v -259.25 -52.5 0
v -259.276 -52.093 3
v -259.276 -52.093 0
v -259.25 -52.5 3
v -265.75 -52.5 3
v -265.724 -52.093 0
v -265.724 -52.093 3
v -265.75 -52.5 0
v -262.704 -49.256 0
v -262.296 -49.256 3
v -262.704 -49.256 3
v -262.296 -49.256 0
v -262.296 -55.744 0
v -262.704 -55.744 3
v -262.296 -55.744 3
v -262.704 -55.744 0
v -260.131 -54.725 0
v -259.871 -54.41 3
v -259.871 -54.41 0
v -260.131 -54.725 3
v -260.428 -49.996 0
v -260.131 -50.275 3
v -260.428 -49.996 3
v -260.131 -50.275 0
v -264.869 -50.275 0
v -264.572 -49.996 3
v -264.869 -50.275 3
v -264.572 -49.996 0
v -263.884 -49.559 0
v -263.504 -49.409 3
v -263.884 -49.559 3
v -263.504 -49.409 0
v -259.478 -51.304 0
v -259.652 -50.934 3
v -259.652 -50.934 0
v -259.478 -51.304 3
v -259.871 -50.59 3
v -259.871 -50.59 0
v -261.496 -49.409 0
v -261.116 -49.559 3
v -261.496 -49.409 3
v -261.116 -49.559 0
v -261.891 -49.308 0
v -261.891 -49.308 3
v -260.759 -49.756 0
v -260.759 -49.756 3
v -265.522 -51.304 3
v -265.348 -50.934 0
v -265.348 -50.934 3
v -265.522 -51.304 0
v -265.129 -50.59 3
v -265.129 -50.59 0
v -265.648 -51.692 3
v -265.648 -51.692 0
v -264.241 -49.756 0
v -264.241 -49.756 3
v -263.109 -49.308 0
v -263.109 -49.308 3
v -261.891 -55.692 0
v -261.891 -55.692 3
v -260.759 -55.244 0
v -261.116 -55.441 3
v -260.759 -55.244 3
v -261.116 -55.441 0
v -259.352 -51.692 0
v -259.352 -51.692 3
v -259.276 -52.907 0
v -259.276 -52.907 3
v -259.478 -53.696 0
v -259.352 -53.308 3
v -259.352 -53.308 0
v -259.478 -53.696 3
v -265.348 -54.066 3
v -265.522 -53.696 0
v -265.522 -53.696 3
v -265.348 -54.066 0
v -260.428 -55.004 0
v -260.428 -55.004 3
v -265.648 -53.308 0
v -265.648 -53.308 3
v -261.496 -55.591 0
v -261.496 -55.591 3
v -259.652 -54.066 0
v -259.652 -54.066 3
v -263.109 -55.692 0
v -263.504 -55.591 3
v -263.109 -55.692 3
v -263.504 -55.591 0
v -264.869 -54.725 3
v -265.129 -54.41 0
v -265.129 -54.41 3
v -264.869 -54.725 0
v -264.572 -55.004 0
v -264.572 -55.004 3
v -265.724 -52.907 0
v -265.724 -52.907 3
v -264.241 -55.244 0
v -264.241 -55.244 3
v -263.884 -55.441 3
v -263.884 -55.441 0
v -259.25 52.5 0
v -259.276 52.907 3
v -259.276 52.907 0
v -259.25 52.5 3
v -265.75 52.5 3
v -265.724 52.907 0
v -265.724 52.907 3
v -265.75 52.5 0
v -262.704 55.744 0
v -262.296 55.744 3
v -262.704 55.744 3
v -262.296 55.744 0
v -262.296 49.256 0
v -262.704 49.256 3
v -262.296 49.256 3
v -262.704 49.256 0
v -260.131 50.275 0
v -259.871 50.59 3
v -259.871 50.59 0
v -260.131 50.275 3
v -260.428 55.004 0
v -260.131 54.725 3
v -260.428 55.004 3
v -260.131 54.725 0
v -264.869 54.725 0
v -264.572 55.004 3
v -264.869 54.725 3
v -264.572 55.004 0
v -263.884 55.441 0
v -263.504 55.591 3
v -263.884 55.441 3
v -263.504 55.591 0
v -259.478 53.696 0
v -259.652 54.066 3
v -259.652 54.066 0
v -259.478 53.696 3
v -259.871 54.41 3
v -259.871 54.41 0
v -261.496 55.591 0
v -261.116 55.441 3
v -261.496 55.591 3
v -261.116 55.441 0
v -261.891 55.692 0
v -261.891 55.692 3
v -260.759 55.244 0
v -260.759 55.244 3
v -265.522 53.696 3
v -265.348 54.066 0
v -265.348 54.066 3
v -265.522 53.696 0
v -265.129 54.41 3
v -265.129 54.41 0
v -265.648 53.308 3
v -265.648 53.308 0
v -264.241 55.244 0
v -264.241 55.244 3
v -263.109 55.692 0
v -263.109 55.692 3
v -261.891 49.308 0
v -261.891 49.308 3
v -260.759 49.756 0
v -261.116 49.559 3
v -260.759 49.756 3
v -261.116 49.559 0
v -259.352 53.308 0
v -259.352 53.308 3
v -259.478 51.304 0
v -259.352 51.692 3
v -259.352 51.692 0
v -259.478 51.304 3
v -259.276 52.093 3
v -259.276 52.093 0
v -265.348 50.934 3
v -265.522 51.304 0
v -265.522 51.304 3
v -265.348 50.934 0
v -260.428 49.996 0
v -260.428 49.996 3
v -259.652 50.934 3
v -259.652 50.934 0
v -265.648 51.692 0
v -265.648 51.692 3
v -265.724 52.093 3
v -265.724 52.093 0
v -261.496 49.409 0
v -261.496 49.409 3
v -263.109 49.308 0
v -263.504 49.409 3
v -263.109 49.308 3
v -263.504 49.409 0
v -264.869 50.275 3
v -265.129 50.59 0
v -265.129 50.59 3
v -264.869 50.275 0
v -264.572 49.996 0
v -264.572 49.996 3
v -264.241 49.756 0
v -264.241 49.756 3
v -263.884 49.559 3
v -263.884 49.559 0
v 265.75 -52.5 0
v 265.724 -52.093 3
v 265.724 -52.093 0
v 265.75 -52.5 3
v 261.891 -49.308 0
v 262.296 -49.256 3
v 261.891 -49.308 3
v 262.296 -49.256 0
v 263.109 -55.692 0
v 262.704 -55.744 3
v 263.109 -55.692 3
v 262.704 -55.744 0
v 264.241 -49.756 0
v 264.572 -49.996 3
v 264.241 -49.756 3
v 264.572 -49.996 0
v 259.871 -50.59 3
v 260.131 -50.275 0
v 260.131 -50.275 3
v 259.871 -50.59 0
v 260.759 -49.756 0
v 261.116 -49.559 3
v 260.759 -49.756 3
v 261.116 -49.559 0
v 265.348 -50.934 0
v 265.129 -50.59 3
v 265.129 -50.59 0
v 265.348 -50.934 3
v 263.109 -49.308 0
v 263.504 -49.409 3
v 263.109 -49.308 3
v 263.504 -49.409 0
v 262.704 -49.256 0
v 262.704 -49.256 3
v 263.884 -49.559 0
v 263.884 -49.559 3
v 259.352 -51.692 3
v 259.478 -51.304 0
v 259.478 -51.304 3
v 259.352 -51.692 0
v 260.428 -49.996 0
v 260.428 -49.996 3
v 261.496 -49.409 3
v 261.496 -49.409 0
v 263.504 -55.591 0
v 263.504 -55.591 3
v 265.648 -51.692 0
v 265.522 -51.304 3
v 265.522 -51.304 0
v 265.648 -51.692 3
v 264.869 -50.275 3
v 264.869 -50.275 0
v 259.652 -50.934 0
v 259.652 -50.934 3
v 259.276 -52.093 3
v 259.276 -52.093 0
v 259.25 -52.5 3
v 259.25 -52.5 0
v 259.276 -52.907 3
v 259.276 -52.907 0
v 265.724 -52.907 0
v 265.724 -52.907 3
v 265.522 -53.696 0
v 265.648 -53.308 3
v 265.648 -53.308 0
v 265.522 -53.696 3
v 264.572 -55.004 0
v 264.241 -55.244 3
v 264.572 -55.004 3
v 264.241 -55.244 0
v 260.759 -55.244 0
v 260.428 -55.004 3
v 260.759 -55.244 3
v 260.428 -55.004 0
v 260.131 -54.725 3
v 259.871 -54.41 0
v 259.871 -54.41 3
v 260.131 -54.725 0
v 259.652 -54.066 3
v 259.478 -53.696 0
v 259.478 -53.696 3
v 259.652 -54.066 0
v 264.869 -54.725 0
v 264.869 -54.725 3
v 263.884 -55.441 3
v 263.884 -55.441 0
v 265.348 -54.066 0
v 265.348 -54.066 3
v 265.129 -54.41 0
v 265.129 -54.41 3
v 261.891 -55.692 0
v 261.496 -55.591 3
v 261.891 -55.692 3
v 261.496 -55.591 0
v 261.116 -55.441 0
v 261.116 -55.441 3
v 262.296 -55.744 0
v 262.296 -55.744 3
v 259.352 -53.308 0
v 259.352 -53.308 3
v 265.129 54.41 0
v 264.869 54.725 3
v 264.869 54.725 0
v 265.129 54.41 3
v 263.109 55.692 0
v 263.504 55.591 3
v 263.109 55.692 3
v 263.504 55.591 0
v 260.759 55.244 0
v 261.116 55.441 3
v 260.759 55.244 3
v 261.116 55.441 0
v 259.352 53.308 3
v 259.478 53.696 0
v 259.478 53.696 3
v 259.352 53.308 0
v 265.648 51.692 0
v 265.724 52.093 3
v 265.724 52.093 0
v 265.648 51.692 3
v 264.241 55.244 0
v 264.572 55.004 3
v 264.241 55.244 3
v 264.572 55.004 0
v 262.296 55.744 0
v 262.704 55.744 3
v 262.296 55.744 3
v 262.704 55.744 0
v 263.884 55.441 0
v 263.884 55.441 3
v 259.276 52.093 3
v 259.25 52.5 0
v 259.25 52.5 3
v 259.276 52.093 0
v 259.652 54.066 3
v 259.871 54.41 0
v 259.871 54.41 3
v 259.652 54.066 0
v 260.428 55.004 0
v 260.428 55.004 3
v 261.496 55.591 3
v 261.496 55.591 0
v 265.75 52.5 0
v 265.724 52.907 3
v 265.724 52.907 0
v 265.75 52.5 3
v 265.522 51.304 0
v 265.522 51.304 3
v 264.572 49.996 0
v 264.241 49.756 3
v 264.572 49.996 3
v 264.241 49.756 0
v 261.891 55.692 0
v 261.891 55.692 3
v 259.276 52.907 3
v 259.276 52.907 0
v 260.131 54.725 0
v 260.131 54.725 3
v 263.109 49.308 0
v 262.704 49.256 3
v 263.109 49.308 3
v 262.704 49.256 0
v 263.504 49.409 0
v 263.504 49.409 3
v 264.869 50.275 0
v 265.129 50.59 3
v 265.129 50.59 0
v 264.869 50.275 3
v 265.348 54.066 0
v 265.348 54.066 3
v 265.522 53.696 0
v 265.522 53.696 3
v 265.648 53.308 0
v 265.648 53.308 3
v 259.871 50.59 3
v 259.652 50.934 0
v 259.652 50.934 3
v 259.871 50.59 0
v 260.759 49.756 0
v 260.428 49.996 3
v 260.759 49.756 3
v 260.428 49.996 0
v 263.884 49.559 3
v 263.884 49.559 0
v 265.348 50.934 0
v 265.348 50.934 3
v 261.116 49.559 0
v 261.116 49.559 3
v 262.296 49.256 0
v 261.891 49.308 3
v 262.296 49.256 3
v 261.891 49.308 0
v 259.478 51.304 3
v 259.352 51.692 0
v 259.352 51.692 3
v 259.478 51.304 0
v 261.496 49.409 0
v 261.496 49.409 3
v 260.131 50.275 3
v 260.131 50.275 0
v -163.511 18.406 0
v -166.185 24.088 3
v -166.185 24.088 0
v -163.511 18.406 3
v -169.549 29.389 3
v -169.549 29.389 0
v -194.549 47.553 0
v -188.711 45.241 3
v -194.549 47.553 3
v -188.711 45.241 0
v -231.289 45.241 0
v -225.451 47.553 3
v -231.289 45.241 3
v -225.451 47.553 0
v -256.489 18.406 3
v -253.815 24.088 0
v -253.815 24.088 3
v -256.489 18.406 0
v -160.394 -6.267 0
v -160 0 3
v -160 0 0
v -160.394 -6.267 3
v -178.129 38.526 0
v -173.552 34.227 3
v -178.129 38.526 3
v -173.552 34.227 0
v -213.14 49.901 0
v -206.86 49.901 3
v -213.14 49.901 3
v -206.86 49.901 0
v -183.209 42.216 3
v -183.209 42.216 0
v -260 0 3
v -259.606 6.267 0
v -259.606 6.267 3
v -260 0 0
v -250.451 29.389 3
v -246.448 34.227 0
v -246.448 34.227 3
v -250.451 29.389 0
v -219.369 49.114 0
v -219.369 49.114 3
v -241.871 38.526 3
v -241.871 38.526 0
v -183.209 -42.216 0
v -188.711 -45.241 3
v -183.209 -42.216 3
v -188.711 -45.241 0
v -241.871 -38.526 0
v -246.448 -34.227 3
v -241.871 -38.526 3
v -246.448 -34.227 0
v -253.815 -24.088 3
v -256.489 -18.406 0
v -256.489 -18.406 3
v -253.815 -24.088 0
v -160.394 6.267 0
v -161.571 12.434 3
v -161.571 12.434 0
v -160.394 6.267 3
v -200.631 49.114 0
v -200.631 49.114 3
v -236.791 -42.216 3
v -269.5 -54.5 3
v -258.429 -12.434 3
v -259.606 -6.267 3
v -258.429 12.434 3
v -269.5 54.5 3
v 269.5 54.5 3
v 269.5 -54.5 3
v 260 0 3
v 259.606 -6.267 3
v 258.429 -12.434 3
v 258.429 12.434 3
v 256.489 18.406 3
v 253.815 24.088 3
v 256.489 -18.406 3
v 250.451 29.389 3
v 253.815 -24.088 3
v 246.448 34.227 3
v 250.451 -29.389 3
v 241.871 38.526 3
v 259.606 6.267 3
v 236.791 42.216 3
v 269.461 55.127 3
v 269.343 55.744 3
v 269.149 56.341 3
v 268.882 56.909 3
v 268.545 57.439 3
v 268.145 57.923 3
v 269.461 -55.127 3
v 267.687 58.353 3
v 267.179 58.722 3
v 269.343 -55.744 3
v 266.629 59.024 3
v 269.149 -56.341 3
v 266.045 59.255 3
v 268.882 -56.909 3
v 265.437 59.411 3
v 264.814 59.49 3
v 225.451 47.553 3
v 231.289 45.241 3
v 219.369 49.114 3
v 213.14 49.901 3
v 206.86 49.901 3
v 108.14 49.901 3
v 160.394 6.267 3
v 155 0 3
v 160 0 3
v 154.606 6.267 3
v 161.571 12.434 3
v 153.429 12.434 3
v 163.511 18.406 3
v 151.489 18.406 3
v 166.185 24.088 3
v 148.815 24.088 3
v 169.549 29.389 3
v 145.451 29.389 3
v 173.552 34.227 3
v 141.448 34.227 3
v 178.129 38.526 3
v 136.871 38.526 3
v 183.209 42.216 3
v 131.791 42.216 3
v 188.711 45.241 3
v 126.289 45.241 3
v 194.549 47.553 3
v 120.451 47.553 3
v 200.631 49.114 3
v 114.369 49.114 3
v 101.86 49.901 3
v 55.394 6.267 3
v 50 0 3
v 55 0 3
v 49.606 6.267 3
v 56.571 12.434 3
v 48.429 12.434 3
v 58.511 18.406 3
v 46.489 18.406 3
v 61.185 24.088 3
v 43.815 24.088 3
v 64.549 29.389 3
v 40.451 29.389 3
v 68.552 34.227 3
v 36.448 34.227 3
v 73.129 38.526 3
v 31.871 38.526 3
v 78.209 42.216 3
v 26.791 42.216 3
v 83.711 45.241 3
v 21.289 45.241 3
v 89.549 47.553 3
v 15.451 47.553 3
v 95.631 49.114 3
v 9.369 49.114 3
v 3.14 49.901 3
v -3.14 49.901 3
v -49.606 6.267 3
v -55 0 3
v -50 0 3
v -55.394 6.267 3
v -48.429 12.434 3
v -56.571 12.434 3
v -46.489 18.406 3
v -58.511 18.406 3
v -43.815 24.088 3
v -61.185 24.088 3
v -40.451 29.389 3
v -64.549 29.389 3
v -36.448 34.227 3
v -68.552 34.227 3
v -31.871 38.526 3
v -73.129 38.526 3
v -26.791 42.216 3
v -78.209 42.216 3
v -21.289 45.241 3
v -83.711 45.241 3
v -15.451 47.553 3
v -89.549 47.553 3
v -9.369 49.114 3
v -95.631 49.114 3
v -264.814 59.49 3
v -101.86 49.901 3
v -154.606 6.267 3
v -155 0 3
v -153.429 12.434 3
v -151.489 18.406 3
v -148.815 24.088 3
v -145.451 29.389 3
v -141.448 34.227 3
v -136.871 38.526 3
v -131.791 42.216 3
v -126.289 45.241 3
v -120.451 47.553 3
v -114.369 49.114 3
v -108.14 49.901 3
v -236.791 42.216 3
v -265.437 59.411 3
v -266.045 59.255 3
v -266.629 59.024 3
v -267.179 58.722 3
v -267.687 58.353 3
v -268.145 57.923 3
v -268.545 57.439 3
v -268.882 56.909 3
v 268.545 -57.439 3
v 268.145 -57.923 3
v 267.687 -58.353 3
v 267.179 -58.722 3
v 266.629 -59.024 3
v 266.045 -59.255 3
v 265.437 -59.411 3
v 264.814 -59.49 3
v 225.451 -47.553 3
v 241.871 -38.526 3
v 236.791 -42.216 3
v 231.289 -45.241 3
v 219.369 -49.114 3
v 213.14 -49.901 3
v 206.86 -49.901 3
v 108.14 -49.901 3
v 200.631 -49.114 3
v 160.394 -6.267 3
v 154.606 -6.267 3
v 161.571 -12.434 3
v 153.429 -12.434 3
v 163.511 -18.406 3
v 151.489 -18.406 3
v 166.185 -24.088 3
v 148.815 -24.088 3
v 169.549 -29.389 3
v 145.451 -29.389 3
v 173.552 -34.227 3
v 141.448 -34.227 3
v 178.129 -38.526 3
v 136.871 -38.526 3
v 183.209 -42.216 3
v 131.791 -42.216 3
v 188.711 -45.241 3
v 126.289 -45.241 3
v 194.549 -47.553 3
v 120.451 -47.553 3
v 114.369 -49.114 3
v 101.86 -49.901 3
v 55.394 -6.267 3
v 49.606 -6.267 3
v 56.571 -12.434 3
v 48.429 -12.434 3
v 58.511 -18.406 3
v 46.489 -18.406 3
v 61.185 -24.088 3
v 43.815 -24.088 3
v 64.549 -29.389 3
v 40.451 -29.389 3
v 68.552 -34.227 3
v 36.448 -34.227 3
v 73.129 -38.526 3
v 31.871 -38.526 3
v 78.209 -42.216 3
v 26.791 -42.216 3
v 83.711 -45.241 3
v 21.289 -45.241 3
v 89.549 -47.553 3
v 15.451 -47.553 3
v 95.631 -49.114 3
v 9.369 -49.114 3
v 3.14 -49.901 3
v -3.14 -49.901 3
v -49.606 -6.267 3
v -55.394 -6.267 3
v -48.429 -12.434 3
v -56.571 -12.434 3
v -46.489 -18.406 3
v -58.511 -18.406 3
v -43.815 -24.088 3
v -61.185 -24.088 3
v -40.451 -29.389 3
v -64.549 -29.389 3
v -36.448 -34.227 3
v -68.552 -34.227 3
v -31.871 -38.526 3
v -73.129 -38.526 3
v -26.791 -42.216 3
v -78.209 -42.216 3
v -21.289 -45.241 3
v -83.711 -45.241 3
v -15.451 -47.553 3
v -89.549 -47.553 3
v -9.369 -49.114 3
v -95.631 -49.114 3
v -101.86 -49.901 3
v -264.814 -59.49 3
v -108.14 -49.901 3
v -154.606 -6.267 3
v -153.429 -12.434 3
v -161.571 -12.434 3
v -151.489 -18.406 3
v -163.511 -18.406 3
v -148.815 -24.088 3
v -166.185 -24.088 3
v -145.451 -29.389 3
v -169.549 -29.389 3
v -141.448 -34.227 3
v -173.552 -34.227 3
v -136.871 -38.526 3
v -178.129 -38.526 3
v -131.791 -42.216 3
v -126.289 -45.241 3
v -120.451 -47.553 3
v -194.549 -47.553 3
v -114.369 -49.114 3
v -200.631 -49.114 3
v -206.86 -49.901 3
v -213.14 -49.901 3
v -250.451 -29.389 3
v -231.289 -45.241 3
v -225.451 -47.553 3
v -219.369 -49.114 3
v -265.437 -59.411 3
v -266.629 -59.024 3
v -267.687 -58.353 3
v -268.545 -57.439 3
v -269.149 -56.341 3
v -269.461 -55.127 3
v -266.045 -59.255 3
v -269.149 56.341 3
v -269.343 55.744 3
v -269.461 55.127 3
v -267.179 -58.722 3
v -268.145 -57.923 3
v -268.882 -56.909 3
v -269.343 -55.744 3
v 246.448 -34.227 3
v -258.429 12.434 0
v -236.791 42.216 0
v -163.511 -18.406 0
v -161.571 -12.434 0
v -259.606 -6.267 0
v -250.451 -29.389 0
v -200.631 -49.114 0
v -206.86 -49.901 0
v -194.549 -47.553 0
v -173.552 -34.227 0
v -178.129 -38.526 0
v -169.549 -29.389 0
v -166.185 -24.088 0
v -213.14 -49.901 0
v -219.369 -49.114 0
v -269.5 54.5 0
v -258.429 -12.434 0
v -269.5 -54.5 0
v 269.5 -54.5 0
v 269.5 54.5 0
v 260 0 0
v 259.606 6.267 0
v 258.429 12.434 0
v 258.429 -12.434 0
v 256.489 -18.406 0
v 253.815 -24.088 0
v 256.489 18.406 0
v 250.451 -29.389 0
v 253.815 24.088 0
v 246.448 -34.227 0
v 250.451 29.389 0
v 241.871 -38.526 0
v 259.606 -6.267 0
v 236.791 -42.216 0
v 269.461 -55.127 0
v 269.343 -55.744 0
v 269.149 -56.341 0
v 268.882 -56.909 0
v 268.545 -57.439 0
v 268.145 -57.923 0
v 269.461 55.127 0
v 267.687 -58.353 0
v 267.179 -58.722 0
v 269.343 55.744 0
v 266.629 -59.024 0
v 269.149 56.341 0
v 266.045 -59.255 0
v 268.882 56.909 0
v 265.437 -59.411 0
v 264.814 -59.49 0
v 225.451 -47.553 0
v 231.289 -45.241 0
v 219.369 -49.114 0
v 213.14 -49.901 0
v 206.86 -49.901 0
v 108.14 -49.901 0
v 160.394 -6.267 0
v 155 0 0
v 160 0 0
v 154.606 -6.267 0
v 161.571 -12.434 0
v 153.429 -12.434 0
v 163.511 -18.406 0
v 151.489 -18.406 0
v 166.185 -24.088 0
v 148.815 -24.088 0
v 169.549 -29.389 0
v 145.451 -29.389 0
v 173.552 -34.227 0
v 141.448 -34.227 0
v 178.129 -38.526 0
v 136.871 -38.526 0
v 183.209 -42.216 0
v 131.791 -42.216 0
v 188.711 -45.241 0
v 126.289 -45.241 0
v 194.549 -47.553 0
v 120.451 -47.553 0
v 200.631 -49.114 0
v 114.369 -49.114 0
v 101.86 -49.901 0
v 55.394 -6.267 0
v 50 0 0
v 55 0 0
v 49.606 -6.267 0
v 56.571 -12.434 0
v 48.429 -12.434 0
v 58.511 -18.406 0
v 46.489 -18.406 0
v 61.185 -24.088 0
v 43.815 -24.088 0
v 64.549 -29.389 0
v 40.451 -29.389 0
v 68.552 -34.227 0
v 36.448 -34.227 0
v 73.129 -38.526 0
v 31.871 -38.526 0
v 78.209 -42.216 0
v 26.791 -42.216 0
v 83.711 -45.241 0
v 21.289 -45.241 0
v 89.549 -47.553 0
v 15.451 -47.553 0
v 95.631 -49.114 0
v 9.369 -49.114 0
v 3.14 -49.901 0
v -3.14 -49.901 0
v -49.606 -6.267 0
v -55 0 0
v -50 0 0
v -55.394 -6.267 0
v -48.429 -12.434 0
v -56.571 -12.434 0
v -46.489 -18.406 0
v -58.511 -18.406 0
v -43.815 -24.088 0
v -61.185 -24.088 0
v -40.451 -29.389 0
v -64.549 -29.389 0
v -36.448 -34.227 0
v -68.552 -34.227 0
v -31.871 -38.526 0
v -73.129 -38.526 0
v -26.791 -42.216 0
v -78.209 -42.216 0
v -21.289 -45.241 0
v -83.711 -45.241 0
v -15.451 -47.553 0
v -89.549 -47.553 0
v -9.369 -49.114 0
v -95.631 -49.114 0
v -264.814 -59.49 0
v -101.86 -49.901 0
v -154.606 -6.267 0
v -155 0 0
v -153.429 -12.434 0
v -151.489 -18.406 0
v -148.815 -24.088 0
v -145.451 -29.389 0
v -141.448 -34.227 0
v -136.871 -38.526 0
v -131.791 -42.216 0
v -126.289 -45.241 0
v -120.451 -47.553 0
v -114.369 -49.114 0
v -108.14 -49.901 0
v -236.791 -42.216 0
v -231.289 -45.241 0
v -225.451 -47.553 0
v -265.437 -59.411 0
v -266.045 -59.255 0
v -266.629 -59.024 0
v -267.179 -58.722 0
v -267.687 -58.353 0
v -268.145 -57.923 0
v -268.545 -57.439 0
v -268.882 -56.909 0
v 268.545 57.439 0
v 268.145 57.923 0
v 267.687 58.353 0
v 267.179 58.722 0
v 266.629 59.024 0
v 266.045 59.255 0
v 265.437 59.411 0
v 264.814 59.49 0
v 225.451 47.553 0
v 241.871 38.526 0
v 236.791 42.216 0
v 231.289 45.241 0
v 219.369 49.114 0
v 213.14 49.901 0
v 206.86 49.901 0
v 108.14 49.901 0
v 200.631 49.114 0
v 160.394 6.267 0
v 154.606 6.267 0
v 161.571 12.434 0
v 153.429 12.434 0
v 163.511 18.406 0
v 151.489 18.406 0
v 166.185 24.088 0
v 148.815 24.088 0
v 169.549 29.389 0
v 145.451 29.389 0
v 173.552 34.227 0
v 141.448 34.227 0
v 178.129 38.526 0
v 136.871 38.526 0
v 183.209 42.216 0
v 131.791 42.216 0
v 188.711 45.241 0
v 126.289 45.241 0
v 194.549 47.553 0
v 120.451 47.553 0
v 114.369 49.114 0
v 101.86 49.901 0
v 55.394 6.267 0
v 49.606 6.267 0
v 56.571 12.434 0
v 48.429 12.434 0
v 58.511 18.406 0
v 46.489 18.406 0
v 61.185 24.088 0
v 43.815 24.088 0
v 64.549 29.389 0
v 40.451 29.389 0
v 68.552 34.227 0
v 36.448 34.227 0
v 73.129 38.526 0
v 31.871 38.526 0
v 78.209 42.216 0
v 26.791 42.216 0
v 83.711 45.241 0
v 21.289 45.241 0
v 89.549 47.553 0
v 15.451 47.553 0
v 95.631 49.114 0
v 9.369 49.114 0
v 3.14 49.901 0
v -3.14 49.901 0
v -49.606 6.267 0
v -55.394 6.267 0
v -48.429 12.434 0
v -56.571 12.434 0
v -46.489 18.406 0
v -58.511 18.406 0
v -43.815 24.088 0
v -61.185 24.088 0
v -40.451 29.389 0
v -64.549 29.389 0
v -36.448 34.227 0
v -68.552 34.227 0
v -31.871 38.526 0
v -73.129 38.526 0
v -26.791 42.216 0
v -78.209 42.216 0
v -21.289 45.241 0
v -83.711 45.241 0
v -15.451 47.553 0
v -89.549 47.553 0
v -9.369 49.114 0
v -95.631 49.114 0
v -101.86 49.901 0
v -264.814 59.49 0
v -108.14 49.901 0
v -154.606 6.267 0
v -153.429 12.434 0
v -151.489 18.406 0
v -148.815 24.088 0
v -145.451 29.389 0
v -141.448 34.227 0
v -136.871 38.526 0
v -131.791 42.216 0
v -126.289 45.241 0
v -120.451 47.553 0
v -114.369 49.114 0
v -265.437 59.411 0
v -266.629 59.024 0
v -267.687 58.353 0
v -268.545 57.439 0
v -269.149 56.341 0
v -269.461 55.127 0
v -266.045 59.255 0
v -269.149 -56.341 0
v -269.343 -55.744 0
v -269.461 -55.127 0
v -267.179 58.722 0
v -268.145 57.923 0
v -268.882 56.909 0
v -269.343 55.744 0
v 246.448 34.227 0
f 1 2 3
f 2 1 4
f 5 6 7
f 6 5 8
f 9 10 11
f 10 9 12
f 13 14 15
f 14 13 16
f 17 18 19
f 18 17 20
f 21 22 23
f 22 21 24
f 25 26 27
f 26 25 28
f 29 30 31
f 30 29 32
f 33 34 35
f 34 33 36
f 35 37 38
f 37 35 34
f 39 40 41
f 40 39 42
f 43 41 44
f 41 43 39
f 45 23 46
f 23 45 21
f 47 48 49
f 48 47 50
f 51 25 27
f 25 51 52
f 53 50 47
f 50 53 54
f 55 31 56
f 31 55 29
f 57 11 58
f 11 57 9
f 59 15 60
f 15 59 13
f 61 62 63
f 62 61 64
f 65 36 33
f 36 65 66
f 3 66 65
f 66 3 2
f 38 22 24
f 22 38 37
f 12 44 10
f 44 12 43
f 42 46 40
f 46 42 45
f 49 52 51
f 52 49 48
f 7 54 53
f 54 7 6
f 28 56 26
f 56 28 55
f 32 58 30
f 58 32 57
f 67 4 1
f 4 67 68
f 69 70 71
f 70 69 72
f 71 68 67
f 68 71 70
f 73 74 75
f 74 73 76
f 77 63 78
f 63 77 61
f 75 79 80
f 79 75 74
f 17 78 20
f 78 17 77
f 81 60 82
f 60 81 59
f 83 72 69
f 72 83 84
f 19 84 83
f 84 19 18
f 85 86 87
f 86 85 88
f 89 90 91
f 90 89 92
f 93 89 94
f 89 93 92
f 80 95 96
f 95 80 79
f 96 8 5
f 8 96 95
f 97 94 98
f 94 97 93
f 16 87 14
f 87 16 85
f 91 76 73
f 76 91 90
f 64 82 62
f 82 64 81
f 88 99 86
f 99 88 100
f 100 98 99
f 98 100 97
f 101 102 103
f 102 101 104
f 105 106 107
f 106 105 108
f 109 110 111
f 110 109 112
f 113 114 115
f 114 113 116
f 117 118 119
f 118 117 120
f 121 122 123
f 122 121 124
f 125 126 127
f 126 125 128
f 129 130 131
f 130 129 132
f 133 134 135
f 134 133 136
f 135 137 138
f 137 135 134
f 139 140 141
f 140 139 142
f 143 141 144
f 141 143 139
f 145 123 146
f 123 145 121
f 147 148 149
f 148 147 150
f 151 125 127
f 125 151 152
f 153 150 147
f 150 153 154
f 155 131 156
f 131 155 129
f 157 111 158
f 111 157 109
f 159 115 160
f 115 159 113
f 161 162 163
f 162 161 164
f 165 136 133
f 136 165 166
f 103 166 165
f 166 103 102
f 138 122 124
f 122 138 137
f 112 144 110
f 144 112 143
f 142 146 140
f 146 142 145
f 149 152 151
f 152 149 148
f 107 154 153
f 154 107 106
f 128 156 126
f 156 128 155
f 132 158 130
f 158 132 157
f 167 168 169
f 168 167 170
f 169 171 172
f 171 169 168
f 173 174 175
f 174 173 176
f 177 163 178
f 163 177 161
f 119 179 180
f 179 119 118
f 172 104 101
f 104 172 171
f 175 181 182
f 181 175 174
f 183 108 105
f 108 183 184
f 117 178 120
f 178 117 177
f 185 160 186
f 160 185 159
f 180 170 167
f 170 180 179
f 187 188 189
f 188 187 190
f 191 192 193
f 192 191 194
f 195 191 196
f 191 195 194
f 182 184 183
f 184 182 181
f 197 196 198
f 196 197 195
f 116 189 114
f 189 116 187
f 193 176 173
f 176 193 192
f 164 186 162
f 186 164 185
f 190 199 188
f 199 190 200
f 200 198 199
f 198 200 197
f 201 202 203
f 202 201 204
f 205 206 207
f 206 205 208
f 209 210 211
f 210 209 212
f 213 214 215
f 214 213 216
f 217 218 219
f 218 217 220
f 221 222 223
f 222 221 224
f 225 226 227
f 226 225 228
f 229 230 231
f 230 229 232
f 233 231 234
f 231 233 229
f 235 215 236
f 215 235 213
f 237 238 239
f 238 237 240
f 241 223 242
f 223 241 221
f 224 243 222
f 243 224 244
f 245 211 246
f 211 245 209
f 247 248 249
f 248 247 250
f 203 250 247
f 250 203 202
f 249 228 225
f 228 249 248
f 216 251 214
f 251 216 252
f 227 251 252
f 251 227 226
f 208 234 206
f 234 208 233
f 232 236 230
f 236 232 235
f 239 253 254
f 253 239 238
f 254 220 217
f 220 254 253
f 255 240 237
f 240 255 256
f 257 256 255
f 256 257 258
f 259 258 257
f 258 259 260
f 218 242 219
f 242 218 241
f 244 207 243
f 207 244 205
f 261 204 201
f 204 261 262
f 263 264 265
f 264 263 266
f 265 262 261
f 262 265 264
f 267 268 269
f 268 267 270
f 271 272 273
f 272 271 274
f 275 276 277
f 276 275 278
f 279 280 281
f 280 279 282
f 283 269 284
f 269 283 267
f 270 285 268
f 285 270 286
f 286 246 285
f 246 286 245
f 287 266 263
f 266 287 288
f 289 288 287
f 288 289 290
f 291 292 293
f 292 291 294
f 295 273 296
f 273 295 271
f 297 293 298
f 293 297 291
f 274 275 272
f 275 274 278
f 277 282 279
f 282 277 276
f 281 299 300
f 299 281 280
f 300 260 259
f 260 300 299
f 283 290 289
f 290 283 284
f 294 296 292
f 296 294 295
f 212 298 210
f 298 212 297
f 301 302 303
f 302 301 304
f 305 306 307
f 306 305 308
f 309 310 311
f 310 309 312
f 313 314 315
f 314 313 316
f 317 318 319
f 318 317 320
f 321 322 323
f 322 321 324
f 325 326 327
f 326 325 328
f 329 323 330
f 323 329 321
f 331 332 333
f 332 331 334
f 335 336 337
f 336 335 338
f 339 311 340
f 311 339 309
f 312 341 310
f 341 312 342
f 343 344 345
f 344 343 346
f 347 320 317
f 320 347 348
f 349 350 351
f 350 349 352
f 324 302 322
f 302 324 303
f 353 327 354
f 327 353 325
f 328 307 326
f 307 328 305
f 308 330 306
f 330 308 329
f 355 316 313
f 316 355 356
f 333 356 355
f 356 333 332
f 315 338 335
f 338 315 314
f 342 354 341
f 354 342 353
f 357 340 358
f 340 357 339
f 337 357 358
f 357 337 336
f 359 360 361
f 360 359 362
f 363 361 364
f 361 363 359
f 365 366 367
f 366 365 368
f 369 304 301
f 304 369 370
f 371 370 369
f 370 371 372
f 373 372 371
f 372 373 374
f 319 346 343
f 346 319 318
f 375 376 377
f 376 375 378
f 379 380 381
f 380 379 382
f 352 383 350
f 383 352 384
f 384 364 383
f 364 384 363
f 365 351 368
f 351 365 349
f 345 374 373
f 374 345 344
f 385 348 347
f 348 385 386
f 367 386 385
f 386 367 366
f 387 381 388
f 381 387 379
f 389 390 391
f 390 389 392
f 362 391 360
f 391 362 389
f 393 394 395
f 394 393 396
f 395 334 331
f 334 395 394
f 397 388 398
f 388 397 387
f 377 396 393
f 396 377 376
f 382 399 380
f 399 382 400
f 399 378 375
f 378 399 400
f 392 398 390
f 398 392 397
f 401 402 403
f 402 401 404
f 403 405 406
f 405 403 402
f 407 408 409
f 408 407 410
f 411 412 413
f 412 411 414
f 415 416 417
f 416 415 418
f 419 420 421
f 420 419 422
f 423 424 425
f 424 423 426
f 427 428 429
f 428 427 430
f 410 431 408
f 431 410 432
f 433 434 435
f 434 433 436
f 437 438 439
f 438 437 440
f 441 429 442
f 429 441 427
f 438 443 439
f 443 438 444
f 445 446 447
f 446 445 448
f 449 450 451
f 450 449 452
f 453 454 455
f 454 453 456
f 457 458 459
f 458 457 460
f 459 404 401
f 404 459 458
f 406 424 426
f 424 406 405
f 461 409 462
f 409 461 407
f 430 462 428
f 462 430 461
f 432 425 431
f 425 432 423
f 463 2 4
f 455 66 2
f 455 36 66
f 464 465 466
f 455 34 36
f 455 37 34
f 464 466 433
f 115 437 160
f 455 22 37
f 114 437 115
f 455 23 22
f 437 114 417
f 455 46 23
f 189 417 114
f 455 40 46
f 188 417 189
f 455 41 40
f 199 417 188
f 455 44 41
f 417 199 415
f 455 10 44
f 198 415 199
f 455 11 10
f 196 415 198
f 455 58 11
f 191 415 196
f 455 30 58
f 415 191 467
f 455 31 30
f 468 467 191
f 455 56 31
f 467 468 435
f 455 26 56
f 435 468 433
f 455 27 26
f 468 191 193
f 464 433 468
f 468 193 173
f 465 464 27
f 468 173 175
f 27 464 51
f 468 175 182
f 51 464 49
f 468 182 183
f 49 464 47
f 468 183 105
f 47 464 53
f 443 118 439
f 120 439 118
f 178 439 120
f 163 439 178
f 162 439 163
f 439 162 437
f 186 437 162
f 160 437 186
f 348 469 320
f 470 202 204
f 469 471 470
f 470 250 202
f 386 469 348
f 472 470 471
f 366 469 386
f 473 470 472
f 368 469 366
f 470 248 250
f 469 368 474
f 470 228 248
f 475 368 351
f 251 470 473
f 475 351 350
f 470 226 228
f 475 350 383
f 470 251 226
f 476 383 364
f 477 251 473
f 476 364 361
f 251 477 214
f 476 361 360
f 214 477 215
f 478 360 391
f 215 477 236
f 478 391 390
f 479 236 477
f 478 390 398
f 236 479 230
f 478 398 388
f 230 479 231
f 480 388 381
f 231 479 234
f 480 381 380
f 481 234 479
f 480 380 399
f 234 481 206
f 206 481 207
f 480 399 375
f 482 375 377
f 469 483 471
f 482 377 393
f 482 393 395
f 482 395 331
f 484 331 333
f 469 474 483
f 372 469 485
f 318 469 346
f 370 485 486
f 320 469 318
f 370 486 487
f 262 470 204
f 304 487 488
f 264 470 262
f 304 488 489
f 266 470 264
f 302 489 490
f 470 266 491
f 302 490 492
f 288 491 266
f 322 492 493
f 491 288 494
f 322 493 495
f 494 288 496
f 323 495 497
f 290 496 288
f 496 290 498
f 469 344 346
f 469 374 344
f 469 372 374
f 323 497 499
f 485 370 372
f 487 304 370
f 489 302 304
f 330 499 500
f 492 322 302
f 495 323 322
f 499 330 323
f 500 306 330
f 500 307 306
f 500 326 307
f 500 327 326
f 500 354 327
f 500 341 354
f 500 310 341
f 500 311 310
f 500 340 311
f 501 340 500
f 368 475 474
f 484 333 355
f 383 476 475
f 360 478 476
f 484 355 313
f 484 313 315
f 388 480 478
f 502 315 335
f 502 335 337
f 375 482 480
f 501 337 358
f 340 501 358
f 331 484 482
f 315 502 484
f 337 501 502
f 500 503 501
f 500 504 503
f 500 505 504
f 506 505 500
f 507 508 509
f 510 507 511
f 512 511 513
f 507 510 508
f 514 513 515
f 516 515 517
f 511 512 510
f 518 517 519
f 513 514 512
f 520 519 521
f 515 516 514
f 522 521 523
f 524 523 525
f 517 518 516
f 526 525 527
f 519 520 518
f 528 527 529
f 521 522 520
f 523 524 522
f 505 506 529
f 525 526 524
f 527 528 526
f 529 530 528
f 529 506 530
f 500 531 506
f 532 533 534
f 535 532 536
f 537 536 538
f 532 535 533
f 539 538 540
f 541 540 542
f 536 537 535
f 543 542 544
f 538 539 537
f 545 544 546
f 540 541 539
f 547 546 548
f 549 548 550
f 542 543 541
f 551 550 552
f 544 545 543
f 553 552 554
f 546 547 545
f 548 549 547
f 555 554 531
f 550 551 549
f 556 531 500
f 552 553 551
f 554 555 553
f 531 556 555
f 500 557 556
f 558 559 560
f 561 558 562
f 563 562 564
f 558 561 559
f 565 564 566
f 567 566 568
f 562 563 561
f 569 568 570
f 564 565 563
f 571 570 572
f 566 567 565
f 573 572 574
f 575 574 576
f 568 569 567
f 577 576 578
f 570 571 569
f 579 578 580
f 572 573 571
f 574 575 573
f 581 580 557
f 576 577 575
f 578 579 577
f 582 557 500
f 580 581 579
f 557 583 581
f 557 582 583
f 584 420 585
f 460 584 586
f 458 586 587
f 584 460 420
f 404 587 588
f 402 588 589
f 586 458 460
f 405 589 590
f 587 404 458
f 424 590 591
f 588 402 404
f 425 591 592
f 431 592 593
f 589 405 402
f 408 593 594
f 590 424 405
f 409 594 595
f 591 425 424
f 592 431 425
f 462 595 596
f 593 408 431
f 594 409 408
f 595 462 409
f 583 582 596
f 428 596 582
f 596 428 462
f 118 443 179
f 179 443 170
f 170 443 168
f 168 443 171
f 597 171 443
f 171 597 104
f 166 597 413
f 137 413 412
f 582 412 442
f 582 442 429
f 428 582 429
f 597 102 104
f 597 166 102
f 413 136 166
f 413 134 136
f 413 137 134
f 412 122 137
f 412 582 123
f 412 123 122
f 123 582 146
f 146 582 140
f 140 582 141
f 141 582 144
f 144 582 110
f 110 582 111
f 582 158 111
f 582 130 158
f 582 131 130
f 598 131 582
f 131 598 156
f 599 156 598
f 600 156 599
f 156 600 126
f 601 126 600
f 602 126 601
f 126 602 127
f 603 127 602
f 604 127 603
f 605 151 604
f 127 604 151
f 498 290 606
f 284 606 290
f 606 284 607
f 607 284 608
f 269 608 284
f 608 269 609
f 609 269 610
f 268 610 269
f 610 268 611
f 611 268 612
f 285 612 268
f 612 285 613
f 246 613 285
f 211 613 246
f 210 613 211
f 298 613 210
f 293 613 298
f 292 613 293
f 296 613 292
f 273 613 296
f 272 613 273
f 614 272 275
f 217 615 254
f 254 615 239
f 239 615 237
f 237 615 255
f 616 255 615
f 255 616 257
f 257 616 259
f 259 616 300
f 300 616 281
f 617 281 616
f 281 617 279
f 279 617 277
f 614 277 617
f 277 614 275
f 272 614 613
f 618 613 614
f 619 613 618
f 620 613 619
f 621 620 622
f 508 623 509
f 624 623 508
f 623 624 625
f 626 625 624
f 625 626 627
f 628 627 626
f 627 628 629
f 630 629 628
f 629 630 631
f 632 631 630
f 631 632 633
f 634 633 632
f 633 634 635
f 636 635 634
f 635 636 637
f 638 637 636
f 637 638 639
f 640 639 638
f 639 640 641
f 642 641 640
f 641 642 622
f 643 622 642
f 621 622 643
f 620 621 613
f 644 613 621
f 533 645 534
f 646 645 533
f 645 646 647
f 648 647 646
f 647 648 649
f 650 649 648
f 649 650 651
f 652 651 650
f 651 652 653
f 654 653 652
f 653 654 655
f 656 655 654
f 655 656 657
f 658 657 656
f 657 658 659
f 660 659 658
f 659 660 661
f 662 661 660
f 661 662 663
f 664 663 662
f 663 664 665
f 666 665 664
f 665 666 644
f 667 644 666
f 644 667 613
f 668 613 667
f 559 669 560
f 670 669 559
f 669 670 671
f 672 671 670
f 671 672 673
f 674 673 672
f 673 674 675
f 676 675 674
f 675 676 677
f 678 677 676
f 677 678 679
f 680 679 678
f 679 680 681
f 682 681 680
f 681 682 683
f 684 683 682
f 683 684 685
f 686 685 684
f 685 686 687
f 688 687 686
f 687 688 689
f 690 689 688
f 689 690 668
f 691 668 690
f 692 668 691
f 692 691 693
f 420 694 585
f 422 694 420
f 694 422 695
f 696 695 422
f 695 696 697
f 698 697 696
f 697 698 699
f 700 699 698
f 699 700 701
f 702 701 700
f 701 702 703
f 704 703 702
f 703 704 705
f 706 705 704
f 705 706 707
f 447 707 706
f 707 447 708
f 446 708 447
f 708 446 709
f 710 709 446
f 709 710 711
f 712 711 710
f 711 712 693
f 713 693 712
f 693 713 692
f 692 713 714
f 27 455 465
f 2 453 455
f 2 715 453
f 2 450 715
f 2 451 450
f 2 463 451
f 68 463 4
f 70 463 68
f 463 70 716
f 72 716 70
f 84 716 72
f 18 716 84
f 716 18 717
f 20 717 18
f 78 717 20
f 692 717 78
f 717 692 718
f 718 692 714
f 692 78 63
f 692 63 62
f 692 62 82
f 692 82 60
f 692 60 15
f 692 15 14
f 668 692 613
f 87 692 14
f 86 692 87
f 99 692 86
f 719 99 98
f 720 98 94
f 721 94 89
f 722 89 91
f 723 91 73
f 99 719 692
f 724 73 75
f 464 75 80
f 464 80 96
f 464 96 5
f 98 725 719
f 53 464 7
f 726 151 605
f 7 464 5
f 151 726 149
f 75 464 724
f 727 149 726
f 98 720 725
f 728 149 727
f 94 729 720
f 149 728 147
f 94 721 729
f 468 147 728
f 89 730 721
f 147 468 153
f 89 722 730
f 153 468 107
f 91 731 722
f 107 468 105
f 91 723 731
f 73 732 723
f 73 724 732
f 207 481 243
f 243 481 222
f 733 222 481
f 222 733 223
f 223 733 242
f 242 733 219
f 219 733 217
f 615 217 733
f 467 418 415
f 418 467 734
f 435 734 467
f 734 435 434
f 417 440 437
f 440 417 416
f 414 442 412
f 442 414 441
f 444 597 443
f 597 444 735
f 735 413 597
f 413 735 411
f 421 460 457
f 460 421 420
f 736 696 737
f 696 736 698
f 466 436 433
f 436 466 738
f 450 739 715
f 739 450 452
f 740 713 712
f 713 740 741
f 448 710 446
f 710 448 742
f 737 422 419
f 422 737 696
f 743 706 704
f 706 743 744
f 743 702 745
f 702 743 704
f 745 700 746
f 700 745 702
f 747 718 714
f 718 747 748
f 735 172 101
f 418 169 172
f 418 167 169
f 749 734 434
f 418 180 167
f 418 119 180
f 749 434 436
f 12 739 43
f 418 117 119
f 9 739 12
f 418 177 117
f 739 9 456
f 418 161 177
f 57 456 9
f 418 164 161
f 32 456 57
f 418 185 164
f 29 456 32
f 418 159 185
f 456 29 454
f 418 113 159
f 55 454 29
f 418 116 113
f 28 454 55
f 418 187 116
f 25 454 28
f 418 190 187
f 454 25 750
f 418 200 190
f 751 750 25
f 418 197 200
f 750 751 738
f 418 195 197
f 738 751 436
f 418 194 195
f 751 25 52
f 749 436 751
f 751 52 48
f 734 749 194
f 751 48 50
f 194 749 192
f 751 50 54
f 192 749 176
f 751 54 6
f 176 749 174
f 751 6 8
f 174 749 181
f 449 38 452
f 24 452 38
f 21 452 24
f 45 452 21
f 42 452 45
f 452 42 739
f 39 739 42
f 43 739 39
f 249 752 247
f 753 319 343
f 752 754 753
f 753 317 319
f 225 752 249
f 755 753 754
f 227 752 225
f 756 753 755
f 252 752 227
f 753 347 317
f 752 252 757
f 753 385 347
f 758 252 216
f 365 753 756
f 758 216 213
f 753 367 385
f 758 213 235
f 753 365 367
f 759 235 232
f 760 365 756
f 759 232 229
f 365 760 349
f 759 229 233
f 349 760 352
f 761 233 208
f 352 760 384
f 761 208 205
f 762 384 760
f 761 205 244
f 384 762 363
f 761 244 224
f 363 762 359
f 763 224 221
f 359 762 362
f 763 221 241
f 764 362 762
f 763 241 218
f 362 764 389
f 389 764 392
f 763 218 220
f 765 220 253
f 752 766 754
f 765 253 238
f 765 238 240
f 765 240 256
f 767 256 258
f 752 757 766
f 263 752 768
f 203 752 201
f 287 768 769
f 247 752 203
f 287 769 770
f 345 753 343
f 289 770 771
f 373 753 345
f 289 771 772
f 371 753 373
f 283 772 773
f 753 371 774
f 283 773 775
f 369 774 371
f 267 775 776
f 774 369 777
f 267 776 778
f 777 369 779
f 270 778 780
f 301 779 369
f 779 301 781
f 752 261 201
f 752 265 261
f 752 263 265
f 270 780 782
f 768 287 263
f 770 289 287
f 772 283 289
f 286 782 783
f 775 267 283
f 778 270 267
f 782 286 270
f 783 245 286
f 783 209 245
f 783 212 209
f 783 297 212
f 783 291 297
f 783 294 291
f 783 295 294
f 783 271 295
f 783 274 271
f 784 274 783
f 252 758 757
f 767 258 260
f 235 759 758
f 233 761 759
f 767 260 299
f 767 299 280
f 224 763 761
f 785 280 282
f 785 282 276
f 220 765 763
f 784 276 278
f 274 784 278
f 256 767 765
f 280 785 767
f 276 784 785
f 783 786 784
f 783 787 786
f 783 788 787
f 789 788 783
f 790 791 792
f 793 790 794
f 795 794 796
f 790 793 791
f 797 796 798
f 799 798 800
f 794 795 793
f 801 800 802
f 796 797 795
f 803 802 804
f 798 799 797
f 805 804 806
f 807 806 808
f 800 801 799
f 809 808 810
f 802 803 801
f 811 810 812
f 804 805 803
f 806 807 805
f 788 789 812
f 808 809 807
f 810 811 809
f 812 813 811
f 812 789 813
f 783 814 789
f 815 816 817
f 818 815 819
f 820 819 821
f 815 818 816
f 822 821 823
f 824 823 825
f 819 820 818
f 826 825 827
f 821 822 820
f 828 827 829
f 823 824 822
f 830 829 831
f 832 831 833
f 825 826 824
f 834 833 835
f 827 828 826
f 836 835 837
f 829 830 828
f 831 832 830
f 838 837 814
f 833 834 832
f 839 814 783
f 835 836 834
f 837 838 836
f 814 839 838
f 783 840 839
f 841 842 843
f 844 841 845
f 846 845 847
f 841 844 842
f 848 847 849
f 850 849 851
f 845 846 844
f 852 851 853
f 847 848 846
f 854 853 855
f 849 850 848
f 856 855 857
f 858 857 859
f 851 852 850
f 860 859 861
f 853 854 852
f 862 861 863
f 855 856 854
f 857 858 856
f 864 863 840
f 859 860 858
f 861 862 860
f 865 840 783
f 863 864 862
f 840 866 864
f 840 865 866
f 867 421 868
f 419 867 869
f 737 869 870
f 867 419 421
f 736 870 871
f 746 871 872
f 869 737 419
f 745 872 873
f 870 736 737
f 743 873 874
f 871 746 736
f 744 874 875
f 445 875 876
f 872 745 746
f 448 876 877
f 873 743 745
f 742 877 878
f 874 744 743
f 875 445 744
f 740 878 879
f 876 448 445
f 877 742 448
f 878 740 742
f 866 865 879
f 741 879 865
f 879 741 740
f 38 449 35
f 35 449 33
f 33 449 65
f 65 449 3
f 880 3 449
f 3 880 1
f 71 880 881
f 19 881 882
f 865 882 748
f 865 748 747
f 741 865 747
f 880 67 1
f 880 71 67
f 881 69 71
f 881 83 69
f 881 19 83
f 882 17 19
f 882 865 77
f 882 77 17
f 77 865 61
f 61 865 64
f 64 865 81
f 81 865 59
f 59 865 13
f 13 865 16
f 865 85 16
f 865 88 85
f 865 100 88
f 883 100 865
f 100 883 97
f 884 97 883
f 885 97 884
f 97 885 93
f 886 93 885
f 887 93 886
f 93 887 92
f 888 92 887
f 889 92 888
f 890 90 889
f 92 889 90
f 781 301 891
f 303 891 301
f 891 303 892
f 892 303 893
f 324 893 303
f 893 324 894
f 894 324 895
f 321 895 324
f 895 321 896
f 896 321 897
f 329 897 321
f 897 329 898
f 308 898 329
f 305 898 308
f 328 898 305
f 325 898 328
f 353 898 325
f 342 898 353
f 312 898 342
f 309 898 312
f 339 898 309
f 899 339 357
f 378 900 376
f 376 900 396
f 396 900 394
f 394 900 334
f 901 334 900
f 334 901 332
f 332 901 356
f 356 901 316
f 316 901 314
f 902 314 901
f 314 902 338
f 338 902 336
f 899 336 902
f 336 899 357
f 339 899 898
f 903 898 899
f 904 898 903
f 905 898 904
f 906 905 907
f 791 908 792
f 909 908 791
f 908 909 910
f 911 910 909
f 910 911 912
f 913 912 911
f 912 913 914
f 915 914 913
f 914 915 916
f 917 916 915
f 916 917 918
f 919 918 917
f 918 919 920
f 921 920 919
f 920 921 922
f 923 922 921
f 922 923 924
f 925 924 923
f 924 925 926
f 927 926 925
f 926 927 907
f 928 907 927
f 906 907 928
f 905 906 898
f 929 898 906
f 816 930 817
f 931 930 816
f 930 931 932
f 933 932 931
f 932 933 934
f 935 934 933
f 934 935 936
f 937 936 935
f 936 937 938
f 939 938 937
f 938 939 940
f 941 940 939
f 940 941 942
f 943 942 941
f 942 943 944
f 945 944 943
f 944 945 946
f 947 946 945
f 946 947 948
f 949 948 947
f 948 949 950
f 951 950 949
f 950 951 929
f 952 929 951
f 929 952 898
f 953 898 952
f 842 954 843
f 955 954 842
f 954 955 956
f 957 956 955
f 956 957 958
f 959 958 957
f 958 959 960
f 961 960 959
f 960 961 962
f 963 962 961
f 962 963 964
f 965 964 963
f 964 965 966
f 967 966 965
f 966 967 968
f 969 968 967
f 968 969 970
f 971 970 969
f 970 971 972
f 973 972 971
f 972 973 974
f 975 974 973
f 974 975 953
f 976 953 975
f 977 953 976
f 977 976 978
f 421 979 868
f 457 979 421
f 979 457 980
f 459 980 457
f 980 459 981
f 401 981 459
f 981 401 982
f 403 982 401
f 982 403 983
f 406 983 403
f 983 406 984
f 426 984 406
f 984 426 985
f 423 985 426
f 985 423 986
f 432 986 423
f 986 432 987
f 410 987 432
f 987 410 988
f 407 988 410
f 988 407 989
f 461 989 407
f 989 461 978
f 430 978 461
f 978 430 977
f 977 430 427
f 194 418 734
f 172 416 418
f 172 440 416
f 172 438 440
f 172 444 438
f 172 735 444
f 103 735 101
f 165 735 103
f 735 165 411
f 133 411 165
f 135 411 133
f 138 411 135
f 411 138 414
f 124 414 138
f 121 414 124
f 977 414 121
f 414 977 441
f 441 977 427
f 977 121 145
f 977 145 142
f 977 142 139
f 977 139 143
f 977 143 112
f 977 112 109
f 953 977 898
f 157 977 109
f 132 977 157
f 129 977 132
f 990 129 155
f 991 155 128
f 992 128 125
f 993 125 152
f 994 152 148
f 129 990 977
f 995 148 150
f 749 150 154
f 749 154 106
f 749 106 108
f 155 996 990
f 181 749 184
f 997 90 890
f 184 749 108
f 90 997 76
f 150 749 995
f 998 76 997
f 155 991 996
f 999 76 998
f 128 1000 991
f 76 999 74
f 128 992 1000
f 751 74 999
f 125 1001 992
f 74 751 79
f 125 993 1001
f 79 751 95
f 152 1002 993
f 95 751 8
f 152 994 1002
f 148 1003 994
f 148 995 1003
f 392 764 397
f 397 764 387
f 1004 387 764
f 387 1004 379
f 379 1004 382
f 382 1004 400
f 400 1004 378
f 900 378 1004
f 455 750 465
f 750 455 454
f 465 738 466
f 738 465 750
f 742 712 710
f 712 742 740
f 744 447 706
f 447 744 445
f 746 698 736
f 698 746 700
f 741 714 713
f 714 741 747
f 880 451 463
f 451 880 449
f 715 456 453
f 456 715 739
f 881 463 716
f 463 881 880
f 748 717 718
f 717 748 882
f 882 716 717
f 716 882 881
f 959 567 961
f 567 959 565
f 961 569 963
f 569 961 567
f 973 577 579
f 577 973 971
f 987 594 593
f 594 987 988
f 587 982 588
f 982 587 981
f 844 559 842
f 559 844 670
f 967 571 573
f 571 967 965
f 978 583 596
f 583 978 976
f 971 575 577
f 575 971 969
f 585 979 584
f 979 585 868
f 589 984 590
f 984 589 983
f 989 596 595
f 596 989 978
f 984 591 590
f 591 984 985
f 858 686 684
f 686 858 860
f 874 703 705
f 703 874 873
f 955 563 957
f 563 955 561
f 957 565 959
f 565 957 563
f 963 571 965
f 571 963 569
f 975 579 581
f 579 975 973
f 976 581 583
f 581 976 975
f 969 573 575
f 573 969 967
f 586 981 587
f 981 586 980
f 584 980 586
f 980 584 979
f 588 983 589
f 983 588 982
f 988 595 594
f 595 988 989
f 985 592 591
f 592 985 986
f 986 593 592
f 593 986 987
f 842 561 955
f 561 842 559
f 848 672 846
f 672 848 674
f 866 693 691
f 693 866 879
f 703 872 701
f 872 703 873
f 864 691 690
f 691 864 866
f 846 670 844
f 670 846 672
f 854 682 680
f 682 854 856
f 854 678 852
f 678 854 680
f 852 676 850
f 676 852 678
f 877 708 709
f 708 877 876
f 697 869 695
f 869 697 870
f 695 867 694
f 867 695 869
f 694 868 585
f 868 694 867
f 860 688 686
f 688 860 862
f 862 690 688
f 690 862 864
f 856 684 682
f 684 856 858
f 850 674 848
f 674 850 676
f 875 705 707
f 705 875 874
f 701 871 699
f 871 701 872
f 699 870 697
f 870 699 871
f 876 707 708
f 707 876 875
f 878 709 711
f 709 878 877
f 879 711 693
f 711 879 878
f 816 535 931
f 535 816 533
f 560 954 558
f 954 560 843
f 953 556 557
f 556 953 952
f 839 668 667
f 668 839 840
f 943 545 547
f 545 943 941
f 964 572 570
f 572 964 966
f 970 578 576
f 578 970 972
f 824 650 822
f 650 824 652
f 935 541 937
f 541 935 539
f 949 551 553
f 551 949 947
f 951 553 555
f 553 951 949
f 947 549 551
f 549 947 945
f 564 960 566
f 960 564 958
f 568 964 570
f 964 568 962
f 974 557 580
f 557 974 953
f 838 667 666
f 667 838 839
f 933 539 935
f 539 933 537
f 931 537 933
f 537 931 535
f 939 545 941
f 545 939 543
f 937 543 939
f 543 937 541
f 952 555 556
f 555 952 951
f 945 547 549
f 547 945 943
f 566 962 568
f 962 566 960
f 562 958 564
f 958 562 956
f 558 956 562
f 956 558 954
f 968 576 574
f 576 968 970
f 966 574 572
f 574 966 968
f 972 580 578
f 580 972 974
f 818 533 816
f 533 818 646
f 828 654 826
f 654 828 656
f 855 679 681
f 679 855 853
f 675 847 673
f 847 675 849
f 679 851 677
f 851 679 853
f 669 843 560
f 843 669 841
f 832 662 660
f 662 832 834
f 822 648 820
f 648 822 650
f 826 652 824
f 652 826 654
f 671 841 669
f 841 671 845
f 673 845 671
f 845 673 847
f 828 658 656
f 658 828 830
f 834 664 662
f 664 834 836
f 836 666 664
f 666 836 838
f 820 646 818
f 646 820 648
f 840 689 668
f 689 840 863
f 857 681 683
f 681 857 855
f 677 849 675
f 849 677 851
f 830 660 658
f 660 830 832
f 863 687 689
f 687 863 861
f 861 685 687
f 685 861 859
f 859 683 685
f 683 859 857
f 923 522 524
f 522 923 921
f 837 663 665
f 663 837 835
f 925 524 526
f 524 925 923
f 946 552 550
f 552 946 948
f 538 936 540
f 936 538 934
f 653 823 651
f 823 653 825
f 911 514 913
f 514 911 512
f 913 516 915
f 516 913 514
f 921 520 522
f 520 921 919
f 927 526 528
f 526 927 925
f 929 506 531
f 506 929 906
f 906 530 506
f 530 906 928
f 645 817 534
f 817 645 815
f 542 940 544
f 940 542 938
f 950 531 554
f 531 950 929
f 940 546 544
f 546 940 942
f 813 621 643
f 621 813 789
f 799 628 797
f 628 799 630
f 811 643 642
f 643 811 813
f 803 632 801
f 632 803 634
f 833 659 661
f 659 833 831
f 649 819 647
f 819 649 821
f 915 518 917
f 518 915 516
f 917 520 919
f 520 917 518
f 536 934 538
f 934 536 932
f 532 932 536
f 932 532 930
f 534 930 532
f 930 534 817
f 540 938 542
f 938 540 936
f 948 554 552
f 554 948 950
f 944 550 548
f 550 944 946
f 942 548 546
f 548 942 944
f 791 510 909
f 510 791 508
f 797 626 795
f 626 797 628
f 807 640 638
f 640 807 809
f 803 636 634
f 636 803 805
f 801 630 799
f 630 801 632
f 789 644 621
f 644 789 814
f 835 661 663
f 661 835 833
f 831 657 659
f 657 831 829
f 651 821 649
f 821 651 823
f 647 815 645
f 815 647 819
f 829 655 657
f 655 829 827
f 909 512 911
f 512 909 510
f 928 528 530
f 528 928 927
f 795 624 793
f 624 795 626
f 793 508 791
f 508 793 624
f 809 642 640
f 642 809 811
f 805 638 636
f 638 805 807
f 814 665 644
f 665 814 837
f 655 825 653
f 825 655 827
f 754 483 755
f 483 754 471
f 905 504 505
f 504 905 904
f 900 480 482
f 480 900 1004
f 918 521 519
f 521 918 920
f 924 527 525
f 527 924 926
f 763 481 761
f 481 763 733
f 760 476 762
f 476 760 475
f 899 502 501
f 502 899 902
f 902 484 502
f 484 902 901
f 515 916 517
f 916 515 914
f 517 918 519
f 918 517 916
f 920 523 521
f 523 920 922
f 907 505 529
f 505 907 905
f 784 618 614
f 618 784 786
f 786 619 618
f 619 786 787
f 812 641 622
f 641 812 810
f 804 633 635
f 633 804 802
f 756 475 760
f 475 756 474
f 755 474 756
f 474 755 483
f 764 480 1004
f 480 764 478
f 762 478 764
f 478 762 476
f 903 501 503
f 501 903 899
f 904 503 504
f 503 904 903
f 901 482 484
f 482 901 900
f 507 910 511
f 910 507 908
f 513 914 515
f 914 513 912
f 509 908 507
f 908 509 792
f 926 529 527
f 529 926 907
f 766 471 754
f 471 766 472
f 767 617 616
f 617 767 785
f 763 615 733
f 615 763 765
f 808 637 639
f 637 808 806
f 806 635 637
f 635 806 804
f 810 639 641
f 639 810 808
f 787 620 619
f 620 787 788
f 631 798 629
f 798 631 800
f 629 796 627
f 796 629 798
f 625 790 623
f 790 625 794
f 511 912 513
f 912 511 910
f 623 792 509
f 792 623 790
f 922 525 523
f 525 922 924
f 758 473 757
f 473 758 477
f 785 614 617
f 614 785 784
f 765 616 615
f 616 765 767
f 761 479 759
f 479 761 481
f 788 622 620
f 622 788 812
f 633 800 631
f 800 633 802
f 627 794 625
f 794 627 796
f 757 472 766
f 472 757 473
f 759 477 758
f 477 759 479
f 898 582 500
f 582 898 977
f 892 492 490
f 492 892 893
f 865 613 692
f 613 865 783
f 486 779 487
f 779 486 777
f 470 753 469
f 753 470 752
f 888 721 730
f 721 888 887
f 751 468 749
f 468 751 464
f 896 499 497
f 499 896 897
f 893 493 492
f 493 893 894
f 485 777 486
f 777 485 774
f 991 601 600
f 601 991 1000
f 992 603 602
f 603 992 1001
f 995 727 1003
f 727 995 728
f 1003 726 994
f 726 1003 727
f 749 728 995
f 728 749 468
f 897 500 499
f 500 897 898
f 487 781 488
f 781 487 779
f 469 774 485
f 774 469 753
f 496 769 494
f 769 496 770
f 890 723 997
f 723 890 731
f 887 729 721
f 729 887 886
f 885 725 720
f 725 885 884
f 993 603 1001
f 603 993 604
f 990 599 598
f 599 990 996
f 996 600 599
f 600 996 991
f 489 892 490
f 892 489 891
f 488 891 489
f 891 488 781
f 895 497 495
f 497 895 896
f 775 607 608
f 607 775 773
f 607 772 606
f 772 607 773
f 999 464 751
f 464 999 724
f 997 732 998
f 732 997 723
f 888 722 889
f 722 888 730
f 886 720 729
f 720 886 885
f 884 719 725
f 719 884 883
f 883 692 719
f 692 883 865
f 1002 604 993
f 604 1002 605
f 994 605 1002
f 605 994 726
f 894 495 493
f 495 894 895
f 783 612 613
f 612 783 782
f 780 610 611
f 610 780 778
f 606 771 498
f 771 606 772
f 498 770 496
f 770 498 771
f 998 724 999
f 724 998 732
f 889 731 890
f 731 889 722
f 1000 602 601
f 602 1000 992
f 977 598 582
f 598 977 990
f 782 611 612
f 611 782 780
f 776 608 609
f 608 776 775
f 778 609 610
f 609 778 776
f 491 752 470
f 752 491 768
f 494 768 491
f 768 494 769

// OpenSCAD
$fn = 50;


difference() {
	union() {
		hull() {
			translate(v = [-264.5000000000, 54.5000000000, 0]) {
				cylinder(h = 3, r = 5);
			}
			translate(v = [264.5000000000, 54.5000000000, 0]) {
				cylinder(h = 3, r = 5);
			}
			translate(v = [-264.5000000000, -54.5000000000, 0]) {
				cylinder(h = 3, r = 5);
			}
			translate(v = [264.5000000000, -54.5000000000, 0]) {
				cylinder(h = 3, r = 5);
			}
		}
	}
	union() {
		#translate(v = [-262.5000000000, -52.5000000000, -100.0000000000]) {
			cylinder(h = 200, r = 3.2500000000);
		}
		#translate(v = [-262.5000000000, 52.5000000000, -100.0000000000]) {
			cylinder(h = 200, r = 3.2500000000);
		}
		#translate(v = [262.5000000000, -52.5000000000, -100.0000000000]) {
			cylinder(h = 200, r = 3.2500000000);
		}
		#translate(v = [262.5000000000, 52.5000000000, -100.0000000000]) {
			cylinder(h = 200, r = 3.2500000000);
		}
		#translate(v = [-210.0000000000, 0, 0]) {
			cylinder(h = 3, r = 50.0000000000);
		}
		#translate(v = [-105.0000000000, 0, 0]) {
			cylinder(h = 3, r = 50.0000000000);
		}
		#cylinder(h = 3, r = 50.0000000000);
		#translate(v = [105.0000000000, 0, 0]) {
			cylinder(h = 3, r = 50.0000000000);
		}
		#translate(v = [210.0000000000, 0, 0]) {
			cylinder(h = 3, r = 50.0000000000);
		}
	}
}
